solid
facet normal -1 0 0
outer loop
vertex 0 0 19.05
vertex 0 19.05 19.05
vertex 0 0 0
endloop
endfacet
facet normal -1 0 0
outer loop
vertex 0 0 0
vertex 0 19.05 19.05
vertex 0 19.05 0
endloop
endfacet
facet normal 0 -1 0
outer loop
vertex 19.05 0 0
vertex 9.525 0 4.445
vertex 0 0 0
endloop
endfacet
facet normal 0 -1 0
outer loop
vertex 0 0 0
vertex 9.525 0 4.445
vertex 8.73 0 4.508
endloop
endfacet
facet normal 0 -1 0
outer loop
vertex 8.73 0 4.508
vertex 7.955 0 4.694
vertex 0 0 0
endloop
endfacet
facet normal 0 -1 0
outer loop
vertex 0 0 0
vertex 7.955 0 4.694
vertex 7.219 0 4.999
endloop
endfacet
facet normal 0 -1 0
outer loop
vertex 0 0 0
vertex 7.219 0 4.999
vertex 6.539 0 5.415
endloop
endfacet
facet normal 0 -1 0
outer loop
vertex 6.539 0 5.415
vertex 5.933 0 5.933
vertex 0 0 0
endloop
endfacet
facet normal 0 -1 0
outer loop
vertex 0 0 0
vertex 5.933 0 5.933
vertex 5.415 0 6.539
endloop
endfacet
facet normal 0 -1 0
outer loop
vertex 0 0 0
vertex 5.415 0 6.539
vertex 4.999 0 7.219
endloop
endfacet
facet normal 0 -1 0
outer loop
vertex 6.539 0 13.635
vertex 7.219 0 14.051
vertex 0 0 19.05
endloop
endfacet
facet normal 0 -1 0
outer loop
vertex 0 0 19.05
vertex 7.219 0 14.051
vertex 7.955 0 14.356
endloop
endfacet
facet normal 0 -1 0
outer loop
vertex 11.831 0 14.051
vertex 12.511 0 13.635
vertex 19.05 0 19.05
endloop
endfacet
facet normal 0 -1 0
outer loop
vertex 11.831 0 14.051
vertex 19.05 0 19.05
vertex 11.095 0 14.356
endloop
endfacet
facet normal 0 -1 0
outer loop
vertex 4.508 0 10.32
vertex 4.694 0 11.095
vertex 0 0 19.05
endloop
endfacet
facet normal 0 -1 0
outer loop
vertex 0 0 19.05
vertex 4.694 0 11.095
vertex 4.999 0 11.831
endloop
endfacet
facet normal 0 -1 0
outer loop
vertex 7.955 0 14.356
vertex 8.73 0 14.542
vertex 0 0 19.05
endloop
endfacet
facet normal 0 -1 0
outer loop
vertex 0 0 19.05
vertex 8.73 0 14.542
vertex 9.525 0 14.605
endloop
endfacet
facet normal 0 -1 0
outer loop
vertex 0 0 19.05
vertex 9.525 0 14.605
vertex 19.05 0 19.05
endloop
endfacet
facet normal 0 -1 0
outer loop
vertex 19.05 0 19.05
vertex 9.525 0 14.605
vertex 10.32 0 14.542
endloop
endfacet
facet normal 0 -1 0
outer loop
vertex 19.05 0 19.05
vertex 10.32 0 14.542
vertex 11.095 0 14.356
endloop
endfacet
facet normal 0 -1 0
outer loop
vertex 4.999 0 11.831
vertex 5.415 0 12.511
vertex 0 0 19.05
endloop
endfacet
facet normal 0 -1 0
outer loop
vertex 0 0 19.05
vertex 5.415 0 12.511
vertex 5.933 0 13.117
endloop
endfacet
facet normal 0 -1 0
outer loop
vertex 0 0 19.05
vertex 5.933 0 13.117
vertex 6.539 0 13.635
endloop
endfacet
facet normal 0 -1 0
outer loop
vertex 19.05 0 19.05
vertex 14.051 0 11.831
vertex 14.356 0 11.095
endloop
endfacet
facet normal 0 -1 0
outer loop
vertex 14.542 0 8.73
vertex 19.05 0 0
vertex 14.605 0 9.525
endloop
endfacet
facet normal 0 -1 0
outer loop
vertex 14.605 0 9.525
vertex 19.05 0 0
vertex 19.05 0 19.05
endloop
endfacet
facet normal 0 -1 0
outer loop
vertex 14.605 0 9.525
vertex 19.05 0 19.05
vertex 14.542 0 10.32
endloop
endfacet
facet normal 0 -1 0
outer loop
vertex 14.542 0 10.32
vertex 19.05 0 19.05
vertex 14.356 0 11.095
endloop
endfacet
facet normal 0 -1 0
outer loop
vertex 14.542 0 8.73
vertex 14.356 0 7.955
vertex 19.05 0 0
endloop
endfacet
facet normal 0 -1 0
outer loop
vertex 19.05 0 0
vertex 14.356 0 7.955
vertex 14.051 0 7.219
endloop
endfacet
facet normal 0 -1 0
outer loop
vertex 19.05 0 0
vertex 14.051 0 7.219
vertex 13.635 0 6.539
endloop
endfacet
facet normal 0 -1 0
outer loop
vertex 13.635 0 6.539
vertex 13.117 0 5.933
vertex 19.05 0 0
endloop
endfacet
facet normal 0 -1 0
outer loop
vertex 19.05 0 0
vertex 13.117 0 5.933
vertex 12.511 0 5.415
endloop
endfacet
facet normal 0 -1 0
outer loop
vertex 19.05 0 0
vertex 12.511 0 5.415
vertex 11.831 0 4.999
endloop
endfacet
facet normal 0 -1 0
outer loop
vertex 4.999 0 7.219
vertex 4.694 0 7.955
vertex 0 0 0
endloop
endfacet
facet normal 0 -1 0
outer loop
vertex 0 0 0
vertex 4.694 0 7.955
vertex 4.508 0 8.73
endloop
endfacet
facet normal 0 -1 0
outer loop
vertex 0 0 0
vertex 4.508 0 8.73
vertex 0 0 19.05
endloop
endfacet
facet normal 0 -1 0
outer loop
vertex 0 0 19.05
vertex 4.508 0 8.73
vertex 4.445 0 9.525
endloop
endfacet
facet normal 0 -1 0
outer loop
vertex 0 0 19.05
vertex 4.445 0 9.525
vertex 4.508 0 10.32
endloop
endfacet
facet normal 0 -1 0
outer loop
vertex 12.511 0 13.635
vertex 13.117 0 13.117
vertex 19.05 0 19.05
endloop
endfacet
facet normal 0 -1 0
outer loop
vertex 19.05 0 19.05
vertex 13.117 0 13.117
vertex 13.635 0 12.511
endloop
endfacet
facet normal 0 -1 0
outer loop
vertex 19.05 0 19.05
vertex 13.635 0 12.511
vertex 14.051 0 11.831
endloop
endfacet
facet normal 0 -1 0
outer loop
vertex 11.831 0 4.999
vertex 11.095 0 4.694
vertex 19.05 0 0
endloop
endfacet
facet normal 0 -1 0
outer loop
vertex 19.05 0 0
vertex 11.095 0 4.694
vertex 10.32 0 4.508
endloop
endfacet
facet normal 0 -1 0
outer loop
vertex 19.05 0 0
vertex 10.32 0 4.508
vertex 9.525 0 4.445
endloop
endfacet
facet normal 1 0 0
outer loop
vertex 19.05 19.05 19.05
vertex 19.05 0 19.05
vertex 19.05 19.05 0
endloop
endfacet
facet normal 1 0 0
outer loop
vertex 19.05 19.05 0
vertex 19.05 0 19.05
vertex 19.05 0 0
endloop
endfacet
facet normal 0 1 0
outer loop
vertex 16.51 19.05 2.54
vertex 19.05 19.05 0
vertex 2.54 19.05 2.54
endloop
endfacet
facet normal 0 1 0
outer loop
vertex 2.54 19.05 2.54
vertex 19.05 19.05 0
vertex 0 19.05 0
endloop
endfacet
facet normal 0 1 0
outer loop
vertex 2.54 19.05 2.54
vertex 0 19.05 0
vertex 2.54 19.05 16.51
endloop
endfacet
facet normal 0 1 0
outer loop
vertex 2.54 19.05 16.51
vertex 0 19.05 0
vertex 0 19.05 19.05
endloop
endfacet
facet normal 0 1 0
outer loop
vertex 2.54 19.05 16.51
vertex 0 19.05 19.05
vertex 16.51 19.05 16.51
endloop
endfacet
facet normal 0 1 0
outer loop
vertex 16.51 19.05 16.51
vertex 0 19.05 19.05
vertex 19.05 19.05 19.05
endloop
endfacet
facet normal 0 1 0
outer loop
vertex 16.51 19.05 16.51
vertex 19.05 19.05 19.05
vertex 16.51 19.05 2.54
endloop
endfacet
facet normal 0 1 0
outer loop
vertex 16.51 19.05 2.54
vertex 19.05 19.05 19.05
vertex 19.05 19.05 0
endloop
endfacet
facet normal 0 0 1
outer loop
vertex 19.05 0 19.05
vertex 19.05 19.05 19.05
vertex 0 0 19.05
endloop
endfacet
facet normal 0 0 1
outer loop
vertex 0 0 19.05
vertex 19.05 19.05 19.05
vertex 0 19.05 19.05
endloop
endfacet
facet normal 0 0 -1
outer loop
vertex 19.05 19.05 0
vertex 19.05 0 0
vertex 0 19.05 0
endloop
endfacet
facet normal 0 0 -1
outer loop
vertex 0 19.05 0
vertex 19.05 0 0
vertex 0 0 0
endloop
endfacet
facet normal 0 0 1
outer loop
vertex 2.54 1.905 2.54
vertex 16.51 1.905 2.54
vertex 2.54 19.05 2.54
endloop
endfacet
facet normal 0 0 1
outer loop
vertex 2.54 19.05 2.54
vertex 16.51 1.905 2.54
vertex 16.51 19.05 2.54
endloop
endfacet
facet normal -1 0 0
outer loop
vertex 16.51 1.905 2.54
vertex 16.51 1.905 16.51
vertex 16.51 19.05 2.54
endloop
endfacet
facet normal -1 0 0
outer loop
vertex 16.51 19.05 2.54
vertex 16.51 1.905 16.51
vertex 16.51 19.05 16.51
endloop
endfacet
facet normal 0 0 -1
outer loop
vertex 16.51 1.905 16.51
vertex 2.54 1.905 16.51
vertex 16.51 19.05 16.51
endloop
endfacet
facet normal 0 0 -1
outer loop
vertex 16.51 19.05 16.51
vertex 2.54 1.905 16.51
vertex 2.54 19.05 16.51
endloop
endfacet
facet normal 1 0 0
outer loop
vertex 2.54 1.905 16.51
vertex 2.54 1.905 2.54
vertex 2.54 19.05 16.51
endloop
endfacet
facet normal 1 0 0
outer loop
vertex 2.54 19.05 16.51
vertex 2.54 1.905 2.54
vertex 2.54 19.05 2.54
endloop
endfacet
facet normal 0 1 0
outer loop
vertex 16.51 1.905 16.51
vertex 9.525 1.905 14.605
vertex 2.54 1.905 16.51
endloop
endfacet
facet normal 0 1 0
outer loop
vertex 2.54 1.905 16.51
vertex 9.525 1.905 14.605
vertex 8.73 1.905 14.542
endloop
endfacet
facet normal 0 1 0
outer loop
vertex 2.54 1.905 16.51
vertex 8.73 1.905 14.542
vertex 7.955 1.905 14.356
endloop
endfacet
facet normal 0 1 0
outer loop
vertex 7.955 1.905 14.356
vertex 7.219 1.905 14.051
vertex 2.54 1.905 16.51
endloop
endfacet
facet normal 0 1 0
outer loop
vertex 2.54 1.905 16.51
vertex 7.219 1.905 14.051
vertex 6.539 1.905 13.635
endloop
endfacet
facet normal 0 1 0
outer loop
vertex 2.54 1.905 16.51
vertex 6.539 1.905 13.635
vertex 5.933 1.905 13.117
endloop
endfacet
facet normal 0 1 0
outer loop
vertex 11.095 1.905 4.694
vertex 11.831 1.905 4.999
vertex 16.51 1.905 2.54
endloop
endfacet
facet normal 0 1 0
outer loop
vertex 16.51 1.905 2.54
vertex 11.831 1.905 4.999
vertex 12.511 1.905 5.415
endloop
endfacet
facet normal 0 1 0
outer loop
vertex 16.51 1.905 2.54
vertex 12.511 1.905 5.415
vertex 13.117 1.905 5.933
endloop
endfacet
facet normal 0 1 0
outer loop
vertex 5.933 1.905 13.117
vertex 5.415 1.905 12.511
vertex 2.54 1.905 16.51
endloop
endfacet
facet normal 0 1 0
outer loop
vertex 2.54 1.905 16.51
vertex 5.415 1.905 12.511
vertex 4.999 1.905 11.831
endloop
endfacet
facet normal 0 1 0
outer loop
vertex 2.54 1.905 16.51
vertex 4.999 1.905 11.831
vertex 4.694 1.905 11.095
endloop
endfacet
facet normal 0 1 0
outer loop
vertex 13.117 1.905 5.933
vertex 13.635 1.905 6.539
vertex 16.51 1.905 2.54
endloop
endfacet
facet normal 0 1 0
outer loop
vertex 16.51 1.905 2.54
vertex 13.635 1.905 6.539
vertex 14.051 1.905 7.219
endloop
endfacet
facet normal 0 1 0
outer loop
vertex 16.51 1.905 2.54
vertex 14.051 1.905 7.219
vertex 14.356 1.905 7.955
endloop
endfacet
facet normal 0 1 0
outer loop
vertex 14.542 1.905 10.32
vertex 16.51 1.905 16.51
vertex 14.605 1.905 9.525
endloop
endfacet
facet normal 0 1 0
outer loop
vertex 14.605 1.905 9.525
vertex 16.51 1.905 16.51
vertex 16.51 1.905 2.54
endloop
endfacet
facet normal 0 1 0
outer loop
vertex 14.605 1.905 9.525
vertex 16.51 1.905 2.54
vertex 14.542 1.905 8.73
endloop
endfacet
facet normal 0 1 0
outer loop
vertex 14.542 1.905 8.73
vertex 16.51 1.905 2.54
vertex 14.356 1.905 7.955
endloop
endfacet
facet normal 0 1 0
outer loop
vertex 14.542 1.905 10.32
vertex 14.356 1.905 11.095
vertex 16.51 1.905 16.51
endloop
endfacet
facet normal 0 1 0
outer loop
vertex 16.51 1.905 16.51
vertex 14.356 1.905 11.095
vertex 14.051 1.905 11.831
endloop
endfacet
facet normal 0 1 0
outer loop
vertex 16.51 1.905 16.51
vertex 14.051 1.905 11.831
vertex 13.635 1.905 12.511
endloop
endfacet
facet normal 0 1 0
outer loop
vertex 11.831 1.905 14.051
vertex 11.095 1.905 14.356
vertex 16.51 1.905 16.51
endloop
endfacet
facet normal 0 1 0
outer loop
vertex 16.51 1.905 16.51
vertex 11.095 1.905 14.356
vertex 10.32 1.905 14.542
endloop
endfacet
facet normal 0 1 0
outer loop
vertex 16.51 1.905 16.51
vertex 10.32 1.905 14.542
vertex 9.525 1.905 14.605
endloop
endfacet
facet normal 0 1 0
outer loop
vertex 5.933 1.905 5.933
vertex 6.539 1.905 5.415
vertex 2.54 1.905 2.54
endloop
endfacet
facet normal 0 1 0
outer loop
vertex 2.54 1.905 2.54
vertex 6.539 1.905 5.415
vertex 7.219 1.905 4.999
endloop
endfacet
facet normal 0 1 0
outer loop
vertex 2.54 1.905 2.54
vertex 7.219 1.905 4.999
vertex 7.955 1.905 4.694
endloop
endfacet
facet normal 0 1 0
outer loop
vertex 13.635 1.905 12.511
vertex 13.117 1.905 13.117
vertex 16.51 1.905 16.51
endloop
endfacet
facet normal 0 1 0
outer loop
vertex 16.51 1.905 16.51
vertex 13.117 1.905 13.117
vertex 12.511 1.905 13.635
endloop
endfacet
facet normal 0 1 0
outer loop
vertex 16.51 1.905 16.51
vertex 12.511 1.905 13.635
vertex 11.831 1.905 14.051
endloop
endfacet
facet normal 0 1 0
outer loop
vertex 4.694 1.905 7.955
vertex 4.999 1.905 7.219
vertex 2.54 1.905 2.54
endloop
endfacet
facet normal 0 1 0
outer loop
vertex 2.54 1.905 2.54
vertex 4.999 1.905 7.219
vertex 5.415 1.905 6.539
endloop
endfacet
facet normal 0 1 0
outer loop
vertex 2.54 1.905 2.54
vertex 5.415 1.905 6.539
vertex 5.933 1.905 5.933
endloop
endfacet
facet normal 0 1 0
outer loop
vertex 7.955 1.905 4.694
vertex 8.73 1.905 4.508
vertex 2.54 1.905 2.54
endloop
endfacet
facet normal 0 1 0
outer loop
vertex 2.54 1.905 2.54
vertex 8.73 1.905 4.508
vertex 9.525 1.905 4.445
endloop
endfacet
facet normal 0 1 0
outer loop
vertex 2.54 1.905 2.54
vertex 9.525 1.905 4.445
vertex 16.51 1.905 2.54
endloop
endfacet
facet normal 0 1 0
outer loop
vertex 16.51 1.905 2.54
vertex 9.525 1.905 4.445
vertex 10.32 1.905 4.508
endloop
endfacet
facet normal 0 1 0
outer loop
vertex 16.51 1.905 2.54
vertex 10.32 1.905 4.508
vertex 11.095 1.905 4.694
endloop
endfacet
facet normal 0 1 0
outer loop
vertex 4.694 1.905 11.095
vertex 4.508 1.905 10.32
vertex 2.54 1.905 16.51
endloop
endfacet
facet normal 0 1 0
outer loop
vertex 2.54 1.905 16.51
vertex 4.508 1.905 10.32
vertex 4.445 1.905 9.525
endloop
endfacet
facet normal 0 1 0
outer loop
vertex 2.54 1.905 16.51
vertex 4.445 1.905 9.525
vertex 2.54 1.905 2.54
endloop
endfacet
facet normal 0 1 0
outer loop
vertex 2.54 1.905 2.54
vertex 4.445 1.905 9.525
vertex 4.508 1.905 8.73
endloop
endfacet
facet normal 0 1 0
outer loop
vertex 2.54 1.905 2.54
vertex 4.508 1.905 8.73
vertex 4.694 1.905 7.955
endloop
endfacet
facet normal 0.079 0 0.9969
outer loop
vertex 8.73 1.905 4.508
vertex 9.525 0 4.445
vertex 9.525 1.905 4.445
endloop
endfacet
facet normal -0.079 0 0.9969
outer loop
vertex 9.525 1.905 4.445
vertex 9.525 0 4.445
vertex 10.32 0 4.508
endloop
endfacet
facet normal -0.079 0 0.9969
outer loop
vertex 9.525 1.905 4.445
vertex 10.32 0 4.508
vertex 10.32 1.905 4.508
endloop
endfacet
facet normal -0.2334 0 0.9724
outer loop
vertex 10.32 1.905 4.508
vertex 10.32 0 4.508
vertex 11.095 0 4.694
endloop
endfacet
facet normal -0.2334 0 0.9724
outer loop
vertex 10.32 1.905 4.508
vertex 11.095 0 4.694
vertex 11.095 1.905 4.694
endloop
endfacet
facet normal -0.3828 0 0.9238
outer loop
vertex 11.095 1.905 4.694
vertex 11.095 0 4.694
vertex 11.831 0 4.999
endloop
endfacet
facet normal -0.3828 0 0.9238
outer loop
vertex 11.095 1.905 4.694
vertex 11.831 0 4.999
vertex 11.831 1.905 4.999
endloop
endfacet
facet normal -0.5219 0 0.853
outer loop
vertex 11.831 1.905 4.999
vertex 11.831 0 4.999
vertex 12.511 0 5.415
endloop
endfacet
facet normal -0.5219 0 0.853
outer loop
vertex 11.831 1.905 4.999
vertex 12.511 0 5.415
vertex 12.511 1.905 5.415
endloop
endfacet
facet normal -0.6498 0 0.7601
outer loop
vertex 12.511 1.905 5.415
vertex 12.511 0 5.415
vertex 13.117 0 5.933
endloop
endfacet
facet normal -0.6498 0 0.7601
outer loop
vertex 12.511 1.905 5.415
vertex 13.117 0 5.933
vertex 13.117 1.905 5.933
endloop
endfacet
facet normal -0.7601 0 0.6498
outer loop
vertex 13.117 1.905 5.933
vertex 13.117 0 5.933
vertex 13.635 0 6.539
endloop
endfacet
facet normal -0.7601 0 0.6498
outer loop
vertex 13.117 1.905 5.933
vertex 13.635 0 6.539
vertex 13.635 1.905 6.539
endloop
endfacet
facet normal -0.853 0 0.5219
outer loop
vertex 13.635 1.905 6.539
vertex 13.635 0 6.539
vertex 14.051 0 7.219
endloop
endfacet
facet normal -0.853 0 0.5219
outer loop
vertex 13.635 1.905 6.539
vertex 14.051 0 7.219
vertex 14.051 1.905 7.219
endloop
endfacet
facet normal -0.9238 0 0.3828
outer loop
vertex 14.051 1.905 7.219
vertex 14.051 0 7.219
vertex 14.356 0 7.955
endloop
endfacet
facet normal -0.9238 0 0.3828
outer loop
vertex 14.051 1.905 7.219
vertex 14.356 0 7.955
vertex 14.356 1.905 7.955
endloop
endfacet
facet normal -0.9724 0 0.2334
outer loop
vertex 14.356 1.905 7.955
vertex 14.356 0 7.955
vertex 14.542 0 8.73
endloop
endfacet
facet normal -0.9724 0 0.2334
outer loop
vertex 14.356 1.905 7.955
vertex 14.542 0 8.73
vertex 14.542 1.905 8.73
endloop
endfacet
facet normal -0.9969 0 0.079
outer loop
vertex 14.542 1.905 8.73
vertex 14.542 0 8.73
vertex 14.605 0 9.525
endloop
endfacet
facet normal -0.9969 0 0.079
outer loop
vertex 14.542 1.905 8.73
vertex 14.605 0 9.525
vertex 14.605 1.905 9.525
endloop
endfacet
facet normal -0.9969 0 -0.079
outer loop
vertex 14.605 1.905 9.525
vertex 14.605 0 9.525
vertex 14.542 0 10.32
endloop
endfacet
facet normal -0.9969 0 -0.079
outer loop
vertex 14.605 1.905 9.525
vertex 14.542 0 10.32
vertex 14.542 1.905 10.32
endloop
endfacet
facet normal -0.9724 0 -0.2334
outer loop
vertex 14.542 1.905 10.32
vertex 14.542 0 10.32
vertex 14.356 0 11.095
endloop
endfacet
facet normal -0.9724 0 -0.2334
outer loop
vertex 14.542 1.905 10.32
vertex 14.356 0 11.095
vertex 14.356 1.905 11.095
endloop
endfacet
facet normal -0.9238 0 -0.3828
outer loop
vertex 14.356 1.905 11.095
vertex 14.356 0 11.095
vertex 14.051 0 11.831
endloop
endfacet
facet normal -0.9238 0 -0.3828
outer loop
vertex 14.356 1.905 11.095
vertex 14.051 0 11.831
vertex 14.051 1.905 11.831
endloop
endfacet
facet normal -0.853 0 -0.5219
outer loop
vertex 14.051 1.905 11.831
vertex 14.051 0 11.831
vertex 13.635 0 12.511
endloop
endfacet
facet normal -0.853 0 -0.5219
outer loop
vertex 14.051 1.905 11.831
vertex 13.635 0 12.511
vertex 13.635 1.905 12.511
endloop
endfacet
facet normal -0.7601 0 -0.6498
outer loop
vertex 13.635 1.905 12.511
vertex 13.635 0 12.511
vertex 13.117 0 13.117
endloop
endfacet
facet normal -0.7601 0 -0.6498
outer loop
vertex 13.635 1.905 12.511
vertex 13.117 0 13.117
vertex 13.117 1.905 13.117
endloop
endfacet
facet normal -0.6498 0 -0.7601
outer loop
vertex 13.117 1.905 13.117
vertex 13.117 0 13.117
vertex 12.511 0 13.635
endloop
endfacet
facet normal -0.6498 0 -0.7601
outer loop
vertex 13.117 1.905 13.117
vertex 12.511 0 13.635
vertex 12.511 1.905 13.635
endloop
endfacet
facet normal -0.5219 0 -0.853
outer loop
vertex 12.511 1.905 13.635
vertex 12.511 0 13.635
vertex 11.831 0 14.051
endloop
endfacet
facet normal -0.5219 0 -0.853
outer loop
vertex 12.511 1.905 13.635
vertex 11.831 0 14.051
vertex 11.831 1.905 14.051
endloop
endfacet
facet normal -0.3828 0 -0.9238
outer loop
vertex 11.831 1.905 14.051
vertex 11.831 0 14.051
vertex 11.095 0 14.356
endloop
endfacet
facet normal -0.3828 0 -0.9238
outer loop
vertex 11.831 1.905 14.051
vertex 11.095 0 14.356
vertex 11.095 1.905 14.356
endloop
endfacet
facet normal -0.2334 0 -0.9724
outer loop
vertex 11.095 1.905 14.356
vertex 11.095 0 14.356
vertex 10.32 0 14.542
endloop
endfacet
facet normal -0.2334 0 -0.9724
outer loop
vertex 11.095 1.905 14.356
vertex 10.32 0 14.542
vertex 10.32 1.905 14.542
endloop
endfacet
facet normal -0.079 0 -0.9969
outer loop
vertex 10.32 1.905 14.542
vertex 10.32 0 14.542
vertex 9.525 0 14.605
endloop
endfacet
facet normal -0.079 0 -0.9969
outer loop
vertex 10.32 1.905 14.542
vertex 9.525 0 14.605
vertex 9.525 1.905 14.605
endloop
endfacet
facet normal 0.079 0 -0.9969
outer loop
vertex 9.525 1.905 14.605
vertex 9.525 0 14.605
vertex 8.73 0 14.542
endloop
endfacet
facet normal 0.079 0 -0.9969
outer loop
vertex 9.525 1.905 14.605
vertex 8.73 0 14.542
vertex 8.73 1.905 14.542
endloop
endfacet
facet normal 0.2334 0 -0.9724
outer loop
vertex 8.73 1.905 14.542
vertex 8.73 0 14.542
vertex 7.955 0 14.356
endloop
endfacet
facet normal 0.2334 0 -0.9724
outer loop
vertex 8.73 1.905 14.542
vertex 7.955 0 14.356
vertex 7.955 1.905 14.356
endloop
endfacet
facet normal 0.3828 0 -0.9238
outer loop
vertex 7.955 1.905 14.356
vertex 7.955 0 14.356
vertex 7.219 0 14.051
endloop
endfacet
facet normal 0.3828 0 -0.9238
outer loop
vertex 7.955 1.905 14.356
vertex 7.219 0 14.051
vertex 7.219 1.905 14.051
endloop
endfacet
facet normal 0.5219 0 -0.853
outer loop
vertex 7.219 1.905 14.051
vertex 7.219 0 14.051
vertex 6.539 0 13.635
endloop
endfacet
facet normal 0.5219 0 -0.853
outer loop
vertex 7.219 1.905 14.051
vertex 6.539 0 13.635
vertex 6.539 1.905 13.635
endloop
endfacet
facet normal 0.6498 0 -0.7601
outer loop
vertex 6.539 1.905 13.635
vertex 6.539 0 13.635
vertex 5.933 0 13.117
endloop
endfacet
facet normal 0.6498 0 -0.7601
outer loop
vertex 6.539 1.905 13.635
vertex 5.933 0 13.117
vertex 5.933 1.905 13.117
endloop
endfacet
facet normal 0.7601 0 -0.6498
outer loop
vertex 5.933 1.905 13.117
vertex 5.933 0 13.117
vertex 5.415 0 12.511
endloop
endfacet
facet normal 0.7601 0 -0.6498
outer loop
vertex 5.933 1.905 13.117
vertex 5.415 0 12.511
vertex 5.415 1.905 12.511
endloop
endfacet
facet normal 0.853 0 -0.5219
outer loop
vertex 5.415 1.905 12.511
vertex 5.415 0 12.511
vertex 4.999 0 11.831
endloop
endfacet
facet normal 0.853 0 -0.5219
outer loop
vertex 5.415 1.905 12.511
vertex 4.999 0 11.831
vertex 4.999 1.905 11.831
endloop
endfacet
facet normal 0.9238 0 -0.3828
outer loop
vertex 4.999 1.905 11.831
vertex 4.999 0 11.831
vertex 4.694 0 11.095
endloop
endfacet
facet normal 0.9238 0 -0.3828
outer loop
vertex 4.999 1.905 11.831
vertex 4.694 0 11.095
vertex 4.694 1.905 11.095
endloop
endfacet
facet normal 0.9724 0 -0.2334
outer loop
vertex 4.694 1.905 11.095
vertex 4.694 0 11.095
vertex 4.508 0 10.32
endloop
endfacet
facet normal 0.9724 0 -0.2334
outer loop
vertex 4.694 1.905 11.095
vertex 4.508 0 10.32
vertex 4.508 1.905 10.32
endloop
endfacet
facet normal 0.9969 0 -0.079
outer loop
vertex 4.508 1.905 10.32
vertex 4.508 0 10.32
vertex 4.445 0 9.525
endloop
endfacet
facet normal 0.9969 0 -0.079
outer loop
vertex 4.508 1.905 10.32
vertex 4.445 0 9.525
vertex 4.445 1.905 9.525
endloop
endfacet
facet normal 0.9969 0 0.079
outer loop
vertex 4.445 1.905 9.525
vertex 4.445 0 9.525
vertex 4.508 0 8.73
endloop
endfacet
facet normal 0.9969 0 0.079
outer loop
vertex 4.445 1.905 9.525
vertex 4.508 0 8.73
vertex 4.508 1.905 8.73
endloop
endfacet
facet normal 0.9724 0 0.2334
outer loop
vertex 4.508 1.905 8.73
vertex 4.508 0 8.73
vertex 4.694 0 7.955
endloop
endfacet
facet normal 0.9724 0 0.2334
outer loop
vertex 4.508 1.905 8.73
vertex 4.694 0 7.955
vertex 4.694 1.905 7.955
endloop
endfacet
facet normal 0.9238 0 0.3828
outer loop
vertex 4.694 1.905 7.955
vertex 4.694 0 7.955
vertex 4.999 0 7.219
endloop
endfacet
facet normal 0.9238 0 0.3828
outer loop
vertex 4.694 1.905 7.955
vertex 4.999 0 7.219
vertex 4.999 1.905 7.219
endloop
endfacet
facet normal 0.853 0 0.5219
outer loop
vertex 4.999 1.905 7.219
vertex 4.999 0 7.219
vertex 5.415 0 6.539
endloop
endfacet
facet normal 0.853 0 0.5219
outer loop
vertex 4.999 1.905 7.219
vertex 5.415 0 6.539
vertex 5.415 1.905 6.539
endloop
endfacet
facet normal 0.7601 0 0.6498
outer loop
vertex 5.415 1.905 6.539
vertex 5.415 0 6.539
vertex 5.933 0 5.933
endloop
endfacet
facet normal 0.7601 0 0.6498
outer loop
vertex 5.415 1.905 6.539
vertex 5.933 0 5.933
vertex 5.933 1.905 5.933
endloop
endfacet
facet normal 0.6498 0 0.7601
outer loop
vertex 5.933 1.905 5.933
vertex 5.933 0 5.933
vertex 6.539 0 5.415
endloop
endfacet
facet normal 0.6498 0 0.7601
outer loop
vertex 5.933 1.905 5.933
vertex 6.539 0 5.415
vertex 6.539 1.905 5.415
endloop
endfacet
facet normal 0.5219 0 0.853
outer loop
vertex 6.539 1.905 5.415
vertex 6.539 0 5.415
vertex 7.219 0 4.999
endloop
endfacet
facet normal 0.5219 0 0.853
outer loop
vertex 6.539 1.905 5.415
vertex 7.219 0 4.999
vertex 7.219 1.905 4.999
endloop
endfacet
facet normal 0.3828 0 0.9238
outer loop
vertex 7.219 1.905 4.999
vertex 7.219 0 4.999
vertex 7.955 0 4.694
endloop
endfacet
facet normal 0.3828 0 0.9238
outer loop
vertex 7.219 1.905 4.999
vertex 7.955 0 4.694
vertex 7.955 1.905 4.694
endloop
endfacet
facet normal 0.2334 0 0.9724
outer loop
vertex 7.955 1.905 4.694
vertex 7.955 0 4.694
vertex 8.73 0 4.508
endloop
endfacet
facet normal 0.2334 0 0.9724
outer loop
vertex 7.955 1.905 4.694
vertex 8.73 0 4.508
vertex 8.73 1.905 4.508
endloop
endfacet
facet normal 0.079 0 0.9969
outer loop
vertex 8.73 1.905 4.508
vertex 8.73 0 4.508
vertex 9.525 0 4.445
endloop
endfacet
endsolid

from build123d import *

# Parameters (mm, degrees)
SKETCH3_W           = 19.05
SKETCH3_H           = 19.05
BOSS_EXTRUDE1_DEPTH = 19.05
SKETCH4_W           = 13.97
SKETCH4_H           = 13.97
CUT_EXTRUDE1_DEPTH  = 17.145
SKETCH5_R           = 5.08
CUT_EXTRUDE2_DEPTH  = 33.995567884


with BuildPart() as part:
    # Sketch3 → Boss-Extrude1 (new body)
    with BuildSketch(Plane.XY):
        with Locations((9.525, 9.525)):
            Rectangle(SKETCH3_W, SKETCH3_H)
    extrude(amount=BOSS_EXTRUDE1_DEPTH)

    # Sketch4 → Cut-Extrude1 (cut)
    with BuildSketch(Plane(origin=(0, 19.05, 0), x_dir=(1, 0, 0), z_dir=(0, 1, 0))):
        with Locations((9.525, -9.525)):
            Rectangle(SKETCH4_W, SKETCH4_H)
    extrude(amount=-CUT_EXTRUDE1_DEPTH, mode=Mode.SUBTRACT)

    # Sketch5 → Cut-Extrude2 (cut, through all)
    with BuildSketch(Plane(origin=(0, 0, 0), x_dir=(-1, 0, 0), z_dir=(0, -1, 0))):
        with Locations(Location((-9.525, -9.525, 0), (0, 0, 90))):
            Circle(SKETCH5_R)
    extrude(amount=-CUT_EXTRUDE2_DEPTH, mode=Mode.SUBTRACT)


solid = part.part
